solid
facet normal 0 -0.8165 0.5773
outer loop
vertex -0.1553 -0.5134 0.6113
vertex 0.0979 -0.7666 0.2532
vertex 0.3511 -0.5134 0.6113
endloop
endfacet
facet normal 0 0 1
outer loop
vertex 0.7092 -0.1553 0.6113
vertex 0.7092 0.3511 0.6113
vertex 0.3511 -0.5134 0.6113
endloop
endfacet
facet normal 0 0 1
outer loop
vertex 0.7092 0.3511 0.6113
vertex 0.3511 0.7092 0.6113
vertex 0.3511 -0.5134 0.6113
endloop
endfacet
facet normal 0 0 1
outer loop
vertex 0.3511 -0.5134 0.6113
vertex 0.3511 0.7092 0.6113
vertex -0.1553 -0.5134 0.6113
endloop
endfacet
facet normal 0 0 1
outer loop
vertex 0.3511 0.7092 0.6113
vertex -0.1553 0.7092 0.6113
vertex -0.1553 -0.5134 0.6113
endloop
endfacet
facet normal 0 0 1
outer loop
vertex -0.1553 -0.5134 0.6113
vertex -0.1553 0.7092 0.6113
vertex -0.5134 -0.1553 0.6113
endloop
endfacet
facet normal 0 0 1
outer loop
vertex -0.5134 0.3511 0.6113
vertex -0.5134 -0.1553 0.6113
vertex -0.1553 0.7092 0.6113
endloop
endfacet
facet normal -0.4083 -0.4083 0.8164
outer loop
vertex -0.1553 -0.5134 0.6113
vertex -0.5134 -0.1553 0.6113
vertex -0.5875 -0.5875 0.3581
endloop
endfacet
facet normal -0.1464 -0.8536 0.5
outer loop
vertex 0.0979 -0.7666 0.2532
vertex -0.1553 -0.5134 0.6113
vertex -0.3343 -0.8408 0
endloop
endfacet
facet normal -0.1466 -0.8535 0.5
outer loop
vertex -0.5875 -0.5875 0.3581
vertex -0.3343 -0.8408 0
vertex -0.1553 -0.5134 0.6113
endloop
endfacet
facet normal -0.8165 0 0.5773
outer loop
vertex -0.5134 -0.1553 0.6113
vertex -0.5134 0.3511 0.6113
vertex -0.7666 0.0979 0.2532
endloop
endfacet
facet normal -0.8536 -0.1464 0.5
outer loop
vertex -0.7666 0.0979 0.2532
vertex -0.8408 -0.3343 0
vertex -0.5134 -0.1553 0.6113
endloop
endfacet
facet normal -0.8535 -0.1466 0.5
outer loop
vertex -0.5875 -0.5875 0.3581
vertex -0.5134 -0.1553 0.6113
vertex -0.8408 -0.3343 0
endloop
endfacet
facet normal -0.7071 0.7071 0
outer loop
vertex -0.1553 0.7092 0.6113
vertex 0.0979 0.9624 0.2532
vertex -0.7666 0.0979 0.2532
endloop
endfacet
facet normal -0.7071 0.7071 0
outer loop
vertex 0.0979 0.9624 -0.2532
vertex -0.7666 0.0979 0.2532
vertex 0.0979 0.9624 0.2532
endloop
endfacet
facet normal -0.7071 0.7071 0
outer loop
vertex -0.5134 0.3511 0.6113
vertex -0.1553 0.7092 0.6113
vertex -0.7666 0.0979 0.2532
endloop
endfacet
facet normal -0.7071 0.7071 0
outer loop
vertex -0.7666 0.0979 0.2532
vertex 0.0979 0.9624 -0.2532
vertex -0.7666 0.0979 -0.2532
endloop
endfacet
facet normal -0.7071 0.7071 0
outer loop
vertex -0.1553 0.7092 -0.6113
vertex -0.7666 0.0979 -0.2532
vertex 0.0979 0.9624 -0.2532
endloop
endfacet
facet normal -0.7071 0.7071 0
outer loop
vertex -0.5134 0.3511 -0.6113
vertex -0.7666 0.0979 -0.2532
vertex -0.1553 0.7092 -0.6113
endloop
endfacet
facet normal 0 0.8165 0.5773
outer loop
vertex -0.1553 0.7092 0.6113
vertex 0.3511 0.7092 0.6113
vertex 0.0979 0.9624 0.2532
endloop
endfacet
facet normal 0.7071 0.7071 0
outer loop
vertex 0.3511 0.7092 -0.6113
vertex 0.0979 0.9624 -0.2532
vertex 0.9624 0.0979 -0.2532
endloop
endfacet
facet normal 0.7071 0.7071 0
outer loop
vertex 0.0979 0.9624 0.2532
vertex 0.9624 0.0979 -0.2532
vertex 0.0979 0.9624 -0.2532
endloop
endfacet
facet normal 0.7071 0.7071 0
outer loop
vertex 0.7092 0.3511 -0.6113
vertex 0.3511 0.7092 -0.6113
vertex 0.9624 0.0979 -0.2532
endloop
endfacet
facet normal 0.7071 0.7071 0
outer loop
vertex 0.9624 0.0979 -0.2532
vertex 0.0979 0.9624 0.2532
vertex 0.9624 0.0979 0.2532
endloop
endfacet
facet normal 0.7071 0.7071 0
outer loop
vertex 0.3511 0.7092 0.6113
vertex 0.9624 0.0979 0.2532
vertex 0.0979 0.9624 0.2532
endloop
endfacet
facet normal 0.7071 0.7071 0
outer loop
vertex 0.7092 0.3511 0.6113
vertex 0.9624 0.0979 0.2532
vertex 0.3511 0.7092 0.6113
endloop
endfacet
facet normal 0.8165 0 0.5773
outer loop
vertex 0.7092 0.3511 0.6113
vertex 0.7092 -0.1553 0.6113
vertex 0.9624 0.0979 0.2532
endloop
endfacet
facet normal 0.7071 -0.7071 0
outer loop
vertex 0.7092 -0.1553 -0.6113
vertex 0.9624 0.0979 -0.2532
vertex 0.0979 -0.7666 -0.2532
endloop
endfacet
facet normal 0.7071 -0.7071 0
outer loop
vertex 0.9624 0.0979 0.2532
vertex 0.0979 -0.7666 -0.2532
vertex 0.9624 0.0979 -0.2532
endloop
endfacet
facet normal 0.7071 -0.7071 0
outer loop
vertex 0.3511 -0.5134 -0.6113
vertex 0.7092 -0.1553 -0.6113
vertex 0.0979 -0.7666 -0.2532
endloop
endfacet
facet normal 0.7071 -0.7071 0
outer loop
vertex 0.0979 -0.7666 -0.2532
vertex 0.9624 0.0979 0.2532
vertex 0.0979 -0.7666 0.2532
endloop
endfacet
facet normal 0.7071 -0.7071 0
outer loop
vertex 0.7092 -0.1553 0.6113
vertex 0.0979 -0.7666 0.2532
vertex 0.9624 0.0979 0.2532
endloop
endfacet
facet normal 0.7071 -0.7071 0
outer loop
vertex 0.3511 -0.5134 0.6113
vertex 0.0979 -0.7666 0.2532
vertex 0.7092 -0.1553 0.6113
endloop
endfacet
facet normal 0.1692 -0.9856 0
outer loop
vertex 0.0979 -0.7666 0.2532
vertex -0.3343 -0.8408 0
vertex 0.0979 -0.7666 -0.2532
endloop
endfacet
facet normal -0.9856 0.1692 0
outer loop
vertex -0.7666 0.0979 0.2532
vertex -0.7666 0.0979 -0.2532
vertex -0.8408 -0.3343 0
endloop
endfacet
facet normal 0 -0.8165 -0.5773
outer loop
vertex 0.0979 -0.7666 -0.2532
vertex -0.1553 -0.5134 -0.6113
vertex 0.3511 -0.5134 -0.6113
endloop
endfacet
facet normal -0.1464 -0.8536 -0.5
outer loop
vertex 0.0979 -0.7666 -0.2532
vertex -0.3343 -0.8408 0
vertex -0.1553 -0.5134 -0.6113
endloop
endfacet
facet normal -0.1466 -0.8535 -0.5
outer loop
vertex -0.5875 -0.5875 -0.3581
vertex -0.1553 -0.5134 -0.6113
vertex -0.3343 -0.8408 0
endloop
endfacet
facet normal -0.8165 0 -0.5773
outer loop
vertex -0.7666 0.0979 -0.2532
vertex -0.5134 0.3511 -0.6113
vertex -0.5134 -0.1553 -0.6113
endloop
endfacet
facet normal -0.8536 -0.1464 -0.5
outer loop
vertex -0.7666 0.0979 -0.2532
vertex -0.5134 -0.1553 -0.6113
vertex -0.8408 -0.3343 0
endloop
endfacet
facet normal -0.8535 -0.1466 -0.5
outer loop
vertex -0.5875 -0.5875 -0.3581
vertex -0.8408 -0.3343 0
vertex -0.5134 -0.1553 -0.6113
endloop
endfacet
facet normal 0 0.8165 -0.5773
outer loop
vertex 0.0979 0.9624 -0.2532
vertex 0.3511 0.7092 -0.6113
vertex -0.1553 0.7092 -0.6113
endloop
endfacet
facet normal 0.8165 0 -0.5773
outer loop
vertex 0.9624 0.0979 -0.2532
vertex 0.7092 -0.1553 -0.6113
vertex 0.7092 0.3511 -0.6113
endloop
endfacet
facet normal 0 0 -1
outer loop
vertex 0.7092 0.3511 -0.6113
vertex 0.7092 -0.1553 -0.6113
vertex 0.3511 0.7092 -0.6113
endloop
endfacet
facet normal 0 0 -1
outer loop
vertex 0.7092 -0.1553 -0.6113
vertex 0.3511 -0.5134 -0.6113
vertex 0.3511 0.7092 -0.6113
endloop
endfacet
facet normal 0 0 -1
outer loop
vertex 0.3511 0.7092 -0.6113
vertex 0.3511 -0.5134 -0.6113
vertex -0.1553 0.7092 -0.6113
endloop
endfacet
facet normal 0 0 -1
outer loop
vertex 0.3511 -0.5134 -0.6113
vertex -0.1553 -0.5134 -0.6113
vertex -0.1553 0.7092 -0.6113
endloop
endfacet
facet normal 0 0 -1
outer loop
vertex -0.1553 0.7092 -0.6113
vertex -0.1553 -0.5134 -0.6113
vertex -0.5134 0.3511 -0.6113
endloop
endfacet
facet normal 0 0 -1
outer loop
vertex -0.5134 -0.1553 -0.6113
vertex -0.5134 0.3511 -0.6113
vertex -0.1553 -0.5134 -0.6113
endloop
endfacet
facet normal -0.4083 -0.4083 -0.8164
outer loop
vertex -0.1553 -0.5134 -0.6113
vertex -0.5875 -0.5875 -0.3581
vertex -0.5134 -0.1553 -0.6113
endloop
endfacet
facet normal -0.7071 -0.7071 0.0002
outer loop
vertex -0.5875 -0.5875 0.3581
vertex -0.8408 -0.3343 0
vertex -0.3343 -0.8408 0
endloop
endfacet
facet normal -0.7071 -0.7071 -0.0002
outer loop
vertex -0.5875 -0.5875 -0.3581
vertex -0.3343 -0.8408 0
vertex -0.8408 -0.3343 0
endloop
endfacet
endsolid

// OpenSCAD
polyhedron( points = [[-0.155287069346161, -0.513382060159438, 0.611306386874287], [-0.513382060086463, -0.155287069370904, 0.611306386874287], [-0.513382060018253, 0.351135723076219, 0.611306386874287], [-0.15528706929127, 0.70923071372282, 0.611306386874287], [0.351135723155855, 0.709230713677344, 0.611306386874287], [0.709230713818531, 0.351135722966437, 0.611306386874287], [0.709230713795792, -0.155287069480687, 0.611306386874287], [0.351135723100964, -0.513382060159438, 0.611306386874287], [0.0979243268905286, -0.766593456445551, 0.253211396163382], [-0.766593456416104, 0.097924326977525, 0.253211396273164], [0.0979243269681566, 0.962442109876411, 0.253211396163381], [0.96244210998349, 0.0979243267183834, 0.253211396163381], [0.097924326753836, -0.766593456330521, -0.253211396173963], [-0.76659345652064, 0.097924327060396, -0.253211396064181], [0.0979243270141661, 0.962442109853141, -0.253211396267666], [0.96244210996022, 0.0979243266723698, -0.253211396267666], [-0.155287069598538, -0.51338205995936, -0.61130638674293], [-0.51338206033884, -0.155287069170827, -0.611306386697458], [-0.513382059934621, 0.351135722992588, -0.611306386985233], [-0.155287069207638, 0.709230713639185, -0.611306386962495], [0.351135723072224, 0.709230713593713, -0.611306386985233], [0.7092307137349, 0.351135722882806, -0.611306386962495], [0.709230713681741, -0.155287069465097, -0.611306387009232], [0.351135722978375, -0.513382060089149, -0.611306387004102], [-0.334334564884701, -0.840757356970078, 2.65219787029617e-11], [-0.587545960896831, -0.587545960725823, 0.358094990731741], [-0.840757357263893, -0.334334564586987, 9.08276482636115e-11], [-0.587545961104827, -0.587545960795474, -0.358094990484044]], faces = [[0, 8, 7], [0, 7, 6, 5, 4, 3, 2, 1], [0, 1, 25], [0, 25, 24, 8], [1, 2, 9], [1, 9, 26, 25], [2, 3, 10, 14, 19, 18, 13, 9], [3, 4, 10], [4, 5, 11, 15, 21, 20, 14, 10], [5, 6, 11], [6, 7, 8, 12, 23, 22, 15, 11], [8, 24, 12], [9, 13, 26], [12, 16, 23], [12, 24, 27, 16], [13, 18, 17], [13, 17, 27, 26], [14, 20, 19], [15, 22, 21], [16, 17, 18, 19, 20, 21, 22, 23], [16, 27, 17], [24, 25, 26, 27]]);
